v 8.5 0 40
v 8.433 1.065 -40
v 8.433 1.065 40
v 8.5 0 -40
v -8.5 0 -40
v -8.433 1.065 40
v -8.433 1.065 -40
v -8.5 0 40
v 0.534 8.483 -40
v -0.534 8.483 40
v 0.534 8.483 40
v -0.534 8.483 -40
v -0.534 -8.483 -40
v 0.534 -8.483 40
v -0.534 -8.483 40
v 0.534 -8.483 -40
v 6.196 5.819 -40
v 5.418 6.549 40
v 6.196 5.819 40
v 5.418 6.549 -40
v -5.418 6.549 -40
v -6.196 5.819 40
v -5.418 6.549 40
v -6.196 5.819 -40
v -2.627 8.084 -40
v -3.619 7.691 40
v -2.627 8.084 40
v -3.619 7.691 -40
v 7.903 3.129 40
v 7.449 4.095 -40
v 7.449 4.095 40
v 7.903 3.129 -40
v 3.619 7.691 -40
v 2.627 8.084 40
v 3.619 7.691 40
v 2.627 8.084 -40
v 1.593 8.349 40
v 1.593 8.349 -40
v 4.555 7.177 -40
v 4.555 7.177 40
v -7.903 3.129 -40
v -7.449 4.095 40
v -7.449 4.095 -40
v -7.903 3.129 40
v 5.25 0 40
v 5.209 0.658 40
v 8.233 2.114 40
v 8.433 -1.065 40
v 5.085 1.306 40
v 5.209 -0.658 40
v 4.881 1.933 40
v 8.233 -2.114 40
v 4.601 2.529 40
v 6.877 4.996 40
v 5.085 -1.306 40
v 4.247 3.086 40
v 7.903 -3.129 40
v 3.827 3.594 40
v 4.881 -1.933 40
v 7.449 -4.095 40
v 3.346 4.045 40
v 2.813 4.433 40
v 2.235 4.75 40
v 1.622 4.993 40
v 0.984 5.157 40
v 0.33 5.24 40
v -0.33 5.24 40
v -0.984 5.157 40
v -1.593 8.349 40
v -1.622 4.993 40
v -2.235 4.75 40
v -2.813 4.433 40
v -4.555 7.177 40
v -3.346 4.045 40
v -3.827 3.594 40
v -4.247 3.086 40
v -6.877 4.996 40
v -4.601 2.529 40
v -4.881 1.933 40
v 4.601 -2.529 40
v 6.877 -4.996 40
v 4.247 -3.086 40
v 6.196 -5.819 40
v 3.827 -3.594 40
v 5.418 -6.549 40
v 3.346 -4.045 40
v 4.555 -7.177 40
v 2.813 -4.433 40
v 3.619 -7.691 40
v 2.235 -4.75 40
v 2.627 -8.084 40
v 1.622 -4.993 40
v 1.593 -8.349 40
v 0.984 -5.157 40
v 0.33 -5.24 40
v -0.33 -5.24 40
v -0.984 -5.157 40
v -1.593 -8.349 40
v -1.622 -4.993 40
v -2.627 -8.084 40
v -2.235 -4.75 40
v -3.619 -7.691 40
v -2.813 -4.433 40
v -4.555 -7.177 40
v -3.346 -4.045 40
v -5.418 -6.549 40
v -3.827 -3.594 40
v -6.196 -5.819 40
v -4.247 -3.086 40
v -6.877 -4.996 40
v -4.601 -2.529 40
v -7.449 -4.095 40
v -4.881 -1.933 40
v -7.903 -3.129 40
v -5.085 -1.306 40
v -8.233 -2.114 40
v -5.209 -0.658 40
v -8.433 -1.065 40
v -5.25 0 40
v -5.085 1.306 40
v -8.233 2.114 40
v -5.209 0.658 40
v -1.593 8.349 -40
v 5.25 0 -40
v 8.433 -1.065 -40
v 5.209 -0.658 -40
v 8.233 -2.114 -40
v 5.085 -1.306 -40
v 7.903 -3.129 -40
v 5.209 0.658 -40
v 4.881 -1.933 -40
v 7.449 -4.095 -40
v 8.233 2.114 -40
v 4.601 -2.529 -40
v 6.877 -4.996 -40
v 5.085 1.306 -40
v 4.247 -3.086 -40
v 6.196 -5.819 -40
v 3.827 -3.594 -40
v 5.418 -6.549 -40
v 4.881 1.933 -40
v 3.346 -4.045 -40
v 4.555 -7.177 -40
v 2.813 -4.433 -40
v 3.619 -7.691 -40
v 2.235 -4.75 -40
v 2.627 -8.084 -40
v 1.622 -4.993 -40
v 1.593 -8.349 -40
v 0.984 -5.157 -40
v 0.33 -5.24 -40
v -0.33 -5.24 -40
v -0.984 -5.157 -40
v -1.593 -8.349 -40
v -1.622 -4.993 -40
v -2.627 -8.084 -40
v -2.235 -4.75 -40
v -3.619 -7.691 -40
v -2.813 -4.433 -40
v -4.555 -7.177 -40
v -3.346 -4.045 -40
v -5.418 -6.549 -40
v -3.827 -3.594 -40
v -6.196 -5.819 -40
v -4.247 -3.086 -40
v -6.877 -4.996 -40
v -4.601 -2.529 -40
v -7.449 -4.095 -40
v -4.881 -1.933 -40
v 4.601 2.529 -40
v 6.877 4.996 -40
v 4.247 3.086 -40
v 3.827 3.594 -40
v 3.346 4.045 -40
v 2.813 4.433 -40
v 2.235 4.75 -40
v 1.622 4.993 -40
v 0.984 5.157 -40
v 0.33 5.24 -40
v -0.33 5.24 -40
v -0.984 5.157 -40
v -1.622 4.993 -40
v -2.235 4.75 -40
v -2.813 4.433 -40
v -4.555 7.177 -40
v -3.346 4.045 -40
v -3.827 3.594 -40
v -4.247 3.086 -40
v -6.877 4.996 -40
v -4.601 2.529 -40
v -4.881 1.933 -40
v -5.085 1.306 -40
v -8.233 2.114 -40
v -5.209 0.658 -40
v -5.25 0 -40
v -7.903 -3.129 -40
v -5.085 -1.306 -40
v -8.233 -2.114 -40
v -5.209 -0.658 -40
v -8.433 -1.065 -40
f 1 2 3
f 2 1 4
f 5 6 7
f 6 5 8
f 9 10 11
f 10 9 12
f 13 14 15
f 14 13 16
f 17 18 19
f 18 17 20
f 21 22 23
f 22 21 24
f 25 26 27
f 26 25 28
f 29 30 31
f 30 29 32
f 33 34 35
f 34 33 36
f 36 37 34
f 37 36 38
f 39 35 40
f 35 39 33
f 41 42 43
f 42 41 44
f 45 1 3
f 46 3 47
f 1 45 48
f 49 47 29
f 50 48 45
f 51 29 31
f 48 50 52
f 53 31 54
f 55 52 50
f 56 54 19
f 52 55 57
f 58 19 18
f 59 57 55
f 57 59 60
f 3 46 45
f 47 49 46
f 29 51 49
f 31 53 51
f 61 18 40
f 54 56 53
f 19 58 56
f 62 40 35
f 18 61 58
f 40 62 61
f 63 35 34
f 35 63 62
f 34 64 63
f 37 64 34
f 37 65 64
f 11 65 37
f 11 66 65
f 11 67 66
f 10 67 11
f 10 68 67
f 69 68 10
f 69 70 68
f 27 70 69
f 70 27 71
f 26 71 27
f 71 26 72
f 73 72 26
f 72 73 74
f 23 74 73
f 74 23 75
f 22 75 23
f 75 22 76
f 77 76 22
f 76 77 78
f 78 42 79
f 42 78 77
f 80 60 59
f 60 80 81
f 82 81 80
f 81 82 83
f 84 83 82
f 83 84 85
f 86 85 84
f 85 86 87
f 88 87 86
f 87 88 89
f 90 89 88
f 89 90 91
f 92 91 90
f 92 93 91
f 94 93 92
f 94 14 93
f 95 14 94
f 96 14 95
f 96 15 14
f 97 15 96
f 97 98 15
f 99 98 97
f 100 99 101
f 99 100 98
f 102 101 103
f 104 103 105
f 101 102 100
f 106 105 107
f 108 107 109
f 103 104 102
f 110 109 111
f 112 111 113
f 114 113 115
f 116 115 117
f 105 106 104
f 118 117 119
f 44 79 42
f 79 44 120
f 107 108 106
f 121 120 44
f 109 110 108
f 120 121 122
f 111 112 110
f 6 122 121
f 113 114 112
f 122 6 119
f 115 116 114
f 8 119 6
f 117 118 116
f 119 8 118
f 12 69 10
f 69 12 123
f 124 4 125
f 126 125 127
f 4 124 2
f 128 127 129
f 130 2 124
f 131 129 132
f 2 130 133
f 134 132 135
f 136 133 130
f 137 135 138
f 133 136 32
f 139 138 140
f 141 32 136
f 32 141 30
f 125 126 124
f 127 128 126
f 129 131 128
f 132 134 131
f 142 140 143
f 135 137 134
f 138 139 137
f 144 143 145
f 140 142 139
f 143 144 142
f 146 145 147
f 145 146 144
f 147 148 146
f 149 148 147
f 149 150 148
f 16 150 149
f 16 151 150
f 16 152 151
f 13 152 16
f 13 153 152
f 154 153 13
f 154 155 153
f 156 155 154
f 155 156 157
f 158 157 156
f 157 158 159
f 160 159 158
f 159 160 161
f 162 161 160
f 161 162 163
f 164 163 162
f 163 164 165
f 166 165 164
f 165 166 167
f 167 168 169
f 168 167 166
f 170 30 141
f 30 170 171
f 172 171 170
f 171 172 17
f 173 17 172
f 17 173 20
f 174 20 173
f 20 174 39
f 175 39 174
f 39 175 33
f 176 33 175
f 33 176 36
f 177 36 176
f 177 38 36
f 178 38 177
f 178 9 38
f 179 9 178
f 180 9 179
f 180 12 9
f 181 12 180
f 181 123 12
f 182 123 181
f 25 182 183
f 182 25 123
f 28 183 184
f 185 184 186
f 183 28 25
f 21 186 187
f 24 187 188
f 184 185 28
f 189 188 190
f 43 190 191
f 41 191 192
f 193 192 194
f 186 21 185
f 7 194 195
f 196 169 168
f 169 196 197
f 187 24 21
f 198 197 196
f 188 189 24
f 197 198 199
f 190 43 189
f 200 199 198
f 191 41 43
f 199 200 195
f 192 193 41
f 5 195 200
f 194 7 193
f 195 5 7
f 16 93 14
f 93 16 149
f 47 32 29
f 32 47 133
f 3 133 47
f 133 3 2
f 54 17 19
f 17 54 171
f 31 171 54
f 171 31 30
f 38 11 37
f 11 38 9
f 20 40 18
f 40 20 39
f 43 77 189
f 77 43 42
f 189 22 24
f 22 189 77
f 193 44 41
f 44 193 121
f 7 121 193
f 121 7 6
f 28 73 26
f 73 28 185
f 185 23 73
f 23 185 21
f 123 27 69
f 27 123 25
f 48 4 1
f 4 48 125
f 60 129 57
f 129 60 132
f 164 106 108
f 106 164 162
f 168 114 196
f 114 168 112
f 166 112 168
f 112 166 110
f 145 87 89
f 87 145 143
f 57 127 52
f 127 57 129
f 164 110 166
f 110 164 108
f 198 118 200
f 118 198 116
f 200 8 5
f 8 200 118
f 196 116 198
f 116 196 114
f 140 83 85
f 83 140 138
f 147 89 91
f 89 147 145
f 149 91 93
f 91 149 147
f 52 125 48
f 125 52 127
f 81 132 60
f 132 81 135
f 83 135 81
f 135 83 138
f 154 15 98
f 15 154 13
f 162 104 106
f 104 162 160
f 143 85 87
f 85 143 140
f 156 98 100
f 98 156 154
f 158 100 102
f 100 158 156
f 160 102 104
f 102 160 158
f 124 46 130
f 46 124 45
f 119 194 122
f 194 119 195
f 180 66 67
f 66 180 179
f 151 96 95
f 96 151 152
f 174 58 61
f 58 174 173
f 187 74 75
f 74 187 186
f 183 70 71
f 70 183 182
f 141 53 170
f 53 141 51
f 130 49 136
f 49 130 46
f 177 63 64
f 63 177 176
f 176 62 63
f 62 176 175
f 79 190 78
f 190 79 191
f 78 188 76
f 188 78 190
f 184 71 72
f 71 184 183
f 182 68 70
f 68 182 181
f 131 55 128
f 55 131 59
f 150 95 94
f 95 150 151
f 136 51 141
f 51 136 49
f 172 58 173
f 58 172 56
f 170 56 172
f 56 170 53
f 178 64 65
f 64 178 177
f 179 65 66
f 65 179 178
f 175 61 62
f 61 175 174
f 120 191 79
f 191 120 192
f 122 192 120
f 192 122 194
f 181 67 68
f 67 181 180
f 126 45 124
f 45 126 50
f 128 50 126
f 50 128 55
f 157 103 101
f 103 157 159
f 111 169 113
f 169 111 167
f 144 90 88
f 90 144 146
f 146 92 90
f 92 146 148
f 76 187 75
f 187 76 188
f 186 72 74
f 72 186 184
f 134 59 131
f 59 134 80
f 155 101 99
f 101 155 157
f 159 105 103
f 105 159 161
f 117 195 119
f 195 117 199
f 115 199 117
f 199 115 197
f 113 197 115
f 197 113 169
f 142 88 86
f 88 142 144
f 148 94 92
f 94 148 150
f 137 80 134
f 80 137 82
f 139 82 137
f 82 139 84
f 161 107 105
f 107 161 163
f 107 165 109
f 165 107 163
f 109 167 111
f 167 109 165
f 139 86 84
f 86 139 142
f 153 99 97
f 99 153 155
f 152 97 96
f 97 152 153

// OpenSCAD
$fn = 50;


difference() {
	union() {
		translate(v = [0, 0, -40.0000000000]) {
			cylinder(h = 80, r = 8.5000000000);
		}
	}
	union() {
		translate(v = [0, 0, -100.0000000000]) {
			cylinder(h = 200, r = 5.2500000000);
		}
	}
}
